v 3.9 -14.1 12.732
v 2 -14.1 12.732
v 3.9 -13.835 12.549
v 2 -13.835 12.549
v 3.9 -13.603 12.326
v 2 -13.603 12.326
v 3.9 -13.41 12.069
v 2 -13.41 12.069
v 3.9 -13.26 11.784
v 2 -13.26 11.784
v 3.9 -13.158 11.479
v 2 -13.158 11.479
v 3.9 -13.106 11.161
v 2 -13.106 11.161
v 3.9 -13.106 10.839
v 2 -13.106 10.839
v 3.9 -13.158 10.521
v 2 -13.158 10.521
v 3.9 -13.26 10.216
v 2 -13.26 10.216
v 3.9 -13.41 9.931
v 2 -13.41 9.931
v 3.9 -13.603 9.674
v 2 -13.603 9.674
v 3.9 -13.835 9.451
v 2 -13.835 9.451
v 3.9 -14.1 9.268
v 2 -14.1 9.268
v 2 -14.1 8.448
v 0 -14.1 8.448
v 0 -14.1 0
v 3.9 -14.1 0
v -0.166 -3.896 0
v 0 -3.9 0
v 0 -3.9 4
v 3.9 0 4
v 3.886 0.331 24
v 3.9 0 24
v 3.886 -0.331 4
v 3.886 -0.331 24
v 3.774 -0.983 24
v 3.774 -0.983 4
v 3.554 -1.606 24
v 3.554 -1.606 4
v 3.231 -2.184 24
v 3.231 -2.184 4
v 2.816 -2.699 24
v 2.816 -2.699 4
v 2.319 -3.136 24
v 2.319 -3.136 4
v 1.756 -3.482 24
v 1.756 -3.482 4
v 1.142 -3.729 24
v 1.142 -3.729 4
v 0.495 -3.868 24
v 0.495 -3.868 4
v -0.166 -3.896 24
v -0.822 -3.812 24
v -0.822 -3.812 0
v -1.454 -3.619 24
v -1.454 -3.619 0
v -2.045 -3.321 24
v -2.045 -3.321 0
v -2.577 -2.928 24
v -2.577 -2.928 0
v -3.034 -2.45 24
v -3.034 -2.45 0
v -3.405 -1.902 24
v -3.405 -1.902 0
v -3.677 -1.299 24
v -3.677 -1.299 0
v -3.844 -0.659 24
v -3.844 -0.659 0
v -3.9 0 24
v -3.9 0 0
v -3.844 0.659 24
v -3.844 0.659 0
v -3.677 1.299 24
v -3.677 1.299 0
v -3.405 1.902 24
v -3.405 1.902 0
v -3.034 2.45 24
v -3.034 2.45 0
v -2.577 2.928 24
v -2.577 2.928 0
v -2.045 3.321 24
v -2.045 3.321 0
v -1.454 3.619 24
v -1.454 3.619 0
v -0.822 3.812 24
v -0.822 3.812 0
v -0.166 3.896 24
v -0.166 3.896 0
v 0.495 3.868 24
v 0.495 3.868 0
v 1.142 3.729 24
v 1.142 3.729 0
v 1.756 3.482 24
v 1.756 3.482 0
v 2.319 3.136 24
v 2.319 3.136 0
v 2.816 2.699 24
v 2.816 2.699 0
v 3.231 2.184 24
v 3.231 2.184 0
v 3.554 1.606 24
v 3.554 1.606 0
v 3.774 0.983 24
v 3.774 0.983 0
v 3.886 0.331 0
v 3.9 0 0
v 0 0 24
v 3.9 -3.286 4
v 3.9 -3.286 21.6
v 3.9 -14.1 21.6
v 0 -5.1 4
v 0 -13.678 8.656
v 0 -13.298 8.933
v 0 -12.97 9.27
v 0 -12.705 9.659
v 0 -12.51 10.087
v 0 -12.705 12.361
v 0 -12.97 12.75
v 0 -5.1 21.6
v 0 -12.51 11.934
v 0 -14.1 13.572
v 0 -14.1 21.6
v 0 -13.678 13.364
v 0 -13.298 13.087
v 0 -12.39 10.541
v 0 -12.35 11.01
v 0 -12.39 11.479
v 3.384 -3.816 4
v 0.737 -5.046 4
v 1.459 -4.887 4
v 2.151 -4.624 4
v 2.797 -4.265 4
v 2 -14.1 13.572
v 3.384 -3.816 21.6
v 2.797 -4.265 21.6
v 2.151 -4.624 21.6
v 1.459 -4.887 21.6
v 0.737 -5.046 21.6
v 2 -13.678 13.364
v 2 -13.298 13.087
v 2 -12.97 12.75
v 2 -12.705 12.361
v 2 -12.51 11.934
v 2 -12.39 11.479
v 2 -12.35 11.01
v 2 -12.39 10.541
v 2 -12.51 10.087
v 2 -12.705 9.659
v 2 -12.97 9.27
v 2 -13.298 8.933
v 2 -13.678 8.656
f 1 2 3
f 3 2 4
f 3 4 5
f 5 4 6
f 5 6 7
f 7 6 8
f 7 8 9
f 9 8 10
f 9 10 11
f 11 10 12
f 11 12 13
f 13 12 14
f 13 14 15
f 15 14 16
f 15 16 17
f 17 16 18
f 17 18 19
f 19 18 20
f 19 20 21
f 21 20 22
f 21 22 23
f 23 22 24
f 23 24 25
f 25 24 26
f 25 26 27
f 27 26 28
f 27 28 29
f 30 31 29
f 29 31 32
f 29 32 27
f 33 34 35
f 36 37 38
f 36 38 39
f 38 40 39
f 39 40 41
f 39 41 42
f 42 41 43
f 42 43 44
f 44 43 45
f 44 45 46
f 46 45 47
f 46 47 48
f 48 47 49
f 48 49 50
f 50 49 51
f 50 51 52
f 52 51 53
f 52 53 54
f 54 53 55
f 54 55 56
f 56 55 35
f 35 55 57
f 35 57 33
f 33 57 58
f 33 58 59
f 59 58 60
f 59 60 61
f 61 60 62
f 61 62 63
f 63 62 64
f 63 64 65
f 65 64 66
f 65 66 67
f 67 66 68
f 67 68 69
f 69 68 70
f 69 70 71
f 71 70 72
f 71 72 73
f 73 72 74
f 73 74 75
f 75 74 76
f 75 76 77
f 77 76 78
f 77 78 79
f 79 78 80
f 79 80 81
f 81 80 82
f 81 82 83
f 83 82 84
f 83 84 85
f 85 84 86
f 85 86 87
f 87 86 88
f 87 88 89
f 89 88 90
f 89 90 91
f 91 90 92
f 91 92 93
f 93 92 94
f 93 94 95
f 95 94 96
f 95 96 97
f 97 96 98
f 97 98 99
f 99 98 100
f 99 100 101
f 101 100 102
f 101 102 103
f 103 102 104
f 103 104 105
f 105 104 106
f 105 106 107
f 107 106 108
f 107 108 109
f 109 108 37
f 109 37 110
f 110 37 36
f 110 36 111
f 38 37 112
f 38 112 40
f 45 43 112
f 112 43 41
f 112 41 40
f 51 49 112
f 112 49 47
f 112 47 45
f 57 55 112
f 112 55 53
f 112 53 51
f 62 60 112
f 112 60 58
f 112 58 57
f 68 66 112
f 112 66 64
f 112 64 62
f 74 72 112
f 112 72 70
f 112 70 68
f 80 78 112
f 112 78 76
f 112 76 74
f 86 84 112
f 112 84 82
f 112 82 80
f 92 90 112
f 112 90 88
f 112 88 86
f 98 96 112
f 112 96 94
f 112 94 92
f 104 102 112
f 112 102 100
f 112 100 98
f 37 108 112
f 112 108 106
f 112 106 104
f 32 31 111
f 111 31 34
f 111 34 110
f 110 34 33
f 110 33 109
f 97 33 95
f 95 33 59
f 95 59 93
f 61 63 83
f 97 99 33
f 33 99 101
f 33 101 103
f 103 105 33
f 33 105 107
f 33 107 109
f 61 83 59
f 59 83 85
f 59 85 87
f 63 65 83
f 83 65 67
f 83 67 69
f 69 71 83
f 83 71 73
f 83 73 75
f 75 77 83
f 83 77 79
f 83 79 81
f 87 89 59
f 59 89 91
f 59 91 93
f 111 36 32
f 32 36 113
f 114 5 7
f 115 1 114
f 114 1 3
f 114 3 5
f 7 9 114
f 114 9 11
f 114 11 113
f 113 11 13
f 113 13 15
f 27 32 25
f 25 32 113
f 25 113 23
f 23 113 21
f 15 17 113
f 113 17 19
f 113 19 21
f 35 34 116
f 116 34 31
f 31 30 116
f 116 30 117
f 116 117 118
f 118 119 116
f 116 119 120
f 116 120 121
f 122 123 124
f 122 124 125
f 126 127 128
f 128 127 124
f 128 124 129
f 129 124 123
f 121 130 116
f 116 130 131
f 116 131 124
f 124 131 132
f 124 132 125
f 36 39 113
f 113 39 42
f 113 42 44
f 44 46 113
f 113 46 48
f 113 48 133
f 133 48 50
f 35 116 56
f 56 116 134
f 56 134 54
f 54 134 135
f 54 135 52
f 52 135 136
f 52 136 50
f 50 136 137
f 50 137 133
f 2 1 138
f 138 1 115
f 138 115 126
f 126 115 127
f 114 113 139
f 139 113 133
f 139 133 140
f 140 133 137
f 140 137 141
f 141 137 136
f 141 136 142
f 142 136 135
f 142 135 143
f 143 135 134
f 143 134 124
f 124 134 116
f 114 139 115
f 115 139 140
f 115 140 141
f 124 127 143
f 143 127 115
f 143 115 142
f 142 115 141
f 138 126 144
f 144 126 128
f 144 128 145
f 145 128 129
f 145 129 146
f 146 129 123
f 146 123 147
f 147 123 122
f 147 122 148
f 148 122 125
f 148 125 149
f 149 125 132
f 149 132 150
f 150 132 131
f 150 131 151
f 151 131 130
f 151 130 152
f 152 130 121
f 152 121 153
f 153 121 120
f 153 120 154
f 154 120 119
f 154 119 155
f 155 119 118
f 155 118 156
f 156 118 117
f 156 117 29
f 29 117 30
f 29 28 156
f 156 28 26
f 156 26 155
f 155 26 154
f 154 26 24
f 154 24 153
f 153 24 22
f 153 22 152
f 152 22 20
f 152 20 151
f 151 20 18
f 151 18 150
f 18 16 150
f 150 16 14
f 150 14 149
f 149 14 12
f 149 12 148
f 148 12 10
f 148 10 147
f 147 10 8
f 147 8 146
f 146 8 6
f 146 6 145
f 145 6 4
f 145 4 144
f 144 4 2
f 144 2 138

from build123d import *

# Parameters (mm, degrees)
SKETCH_1_R          = 1.95
EXTRUDE_1_DEPTH     = 12
SKETCH_4_W          = 2
SKETCH_4_H          = 9
EXTRUDE_2_DEPTH     = 1.95
EXTRUDE_4_DEPTH     = 8.8
SKETCH_9_R          = 1
CUT_EXTRUDE_2_DEPTH = 17
SKETCH_13_R         = 1.375
CUT_EXTRUDE_6_DEPTH = 1
CUT_EXTRUDE_7_DEPTH = 13.389713
SCALE_1_SCALE       = 2


with BuildPart() as part:
    # 스케치1 → 보스-돌출1 (new body)
    with BuildSketch(Plane.XY):
        Circle(SKETCH_1_R)
    extrude(amount=EXTRUDE_1_DEPTH)

    # 스케치4 → 보스-돌출2 (add)
    with BuildSketch(Plane(origin=(0, 0, 0), x_dir=(0, 0, -1), z_dir=(1, 0, 0))):
        with Locations((-1, -2.55)):
            Rectangle(SKETCH_4_W, SKETCH_4_H)
    extrude(amount=EXTRUDE_2_DEPTH)

    # 스케치8 → 보스-돌출4 (add)
    with BuildSketch(Plane.XY.offset(2)):
        with BuildLine():
            ThreePointArc((1.95, -1.643168), (1.075273, -2.312204), (0, -2.55))
            Line((0, -2.55), (0, -7.05))
            Line((0, -7.05), (1.95, -7.05))
            Line((1.95, -7.05), (1.95, -1.643168))
        make_face()
    extrude(amount=EXTRUDE_4_DEPTH)

    # 스케치9 → 컷-돌출2 (cut)
    with BuildSketch(Plane.ZY):
        with Locations((5.5, -7.55)):
            Circle(SKETCH_9_R)
    extrude(amount=-CUT_EXTRUDE_2_DEPTH, mode=Mode.SUBTRACT)

    # 스케치13 → 컷-돌출6 (cut)
    with BuildSketch(Plane.ZY):
        with Locations((5.505014, -7.55)):
            Circle(SKETCH_13_R)
    extrude(amount=-CUT_EXTRUDE_6_DEPTH, mode=Mode.SUBTRACT)

    # 스케치12 → 컷-돌출7 (cut, through all)
    with BuildSketch(Plane.XY.offset(2)):
        with BuildLine():
            Line((1.95, 0), (1.95, 1.95))
            Line((1.95, 1.95), (0, 1.95))
            ThreePointArc((0, 1.95), (1.378858, 1.378858), (1.95, 0))
        make_face()
    extrude(amount=-CUT_EXTRUDE_7_DEPTH, mode=Mode.SUBTRACT)


with BuildPart() as part_1:
    # 축척1: scaled about (0, 0, 0)
    add(part.part.scale(SCALE_1_SCALE))


solid = part_1.part
